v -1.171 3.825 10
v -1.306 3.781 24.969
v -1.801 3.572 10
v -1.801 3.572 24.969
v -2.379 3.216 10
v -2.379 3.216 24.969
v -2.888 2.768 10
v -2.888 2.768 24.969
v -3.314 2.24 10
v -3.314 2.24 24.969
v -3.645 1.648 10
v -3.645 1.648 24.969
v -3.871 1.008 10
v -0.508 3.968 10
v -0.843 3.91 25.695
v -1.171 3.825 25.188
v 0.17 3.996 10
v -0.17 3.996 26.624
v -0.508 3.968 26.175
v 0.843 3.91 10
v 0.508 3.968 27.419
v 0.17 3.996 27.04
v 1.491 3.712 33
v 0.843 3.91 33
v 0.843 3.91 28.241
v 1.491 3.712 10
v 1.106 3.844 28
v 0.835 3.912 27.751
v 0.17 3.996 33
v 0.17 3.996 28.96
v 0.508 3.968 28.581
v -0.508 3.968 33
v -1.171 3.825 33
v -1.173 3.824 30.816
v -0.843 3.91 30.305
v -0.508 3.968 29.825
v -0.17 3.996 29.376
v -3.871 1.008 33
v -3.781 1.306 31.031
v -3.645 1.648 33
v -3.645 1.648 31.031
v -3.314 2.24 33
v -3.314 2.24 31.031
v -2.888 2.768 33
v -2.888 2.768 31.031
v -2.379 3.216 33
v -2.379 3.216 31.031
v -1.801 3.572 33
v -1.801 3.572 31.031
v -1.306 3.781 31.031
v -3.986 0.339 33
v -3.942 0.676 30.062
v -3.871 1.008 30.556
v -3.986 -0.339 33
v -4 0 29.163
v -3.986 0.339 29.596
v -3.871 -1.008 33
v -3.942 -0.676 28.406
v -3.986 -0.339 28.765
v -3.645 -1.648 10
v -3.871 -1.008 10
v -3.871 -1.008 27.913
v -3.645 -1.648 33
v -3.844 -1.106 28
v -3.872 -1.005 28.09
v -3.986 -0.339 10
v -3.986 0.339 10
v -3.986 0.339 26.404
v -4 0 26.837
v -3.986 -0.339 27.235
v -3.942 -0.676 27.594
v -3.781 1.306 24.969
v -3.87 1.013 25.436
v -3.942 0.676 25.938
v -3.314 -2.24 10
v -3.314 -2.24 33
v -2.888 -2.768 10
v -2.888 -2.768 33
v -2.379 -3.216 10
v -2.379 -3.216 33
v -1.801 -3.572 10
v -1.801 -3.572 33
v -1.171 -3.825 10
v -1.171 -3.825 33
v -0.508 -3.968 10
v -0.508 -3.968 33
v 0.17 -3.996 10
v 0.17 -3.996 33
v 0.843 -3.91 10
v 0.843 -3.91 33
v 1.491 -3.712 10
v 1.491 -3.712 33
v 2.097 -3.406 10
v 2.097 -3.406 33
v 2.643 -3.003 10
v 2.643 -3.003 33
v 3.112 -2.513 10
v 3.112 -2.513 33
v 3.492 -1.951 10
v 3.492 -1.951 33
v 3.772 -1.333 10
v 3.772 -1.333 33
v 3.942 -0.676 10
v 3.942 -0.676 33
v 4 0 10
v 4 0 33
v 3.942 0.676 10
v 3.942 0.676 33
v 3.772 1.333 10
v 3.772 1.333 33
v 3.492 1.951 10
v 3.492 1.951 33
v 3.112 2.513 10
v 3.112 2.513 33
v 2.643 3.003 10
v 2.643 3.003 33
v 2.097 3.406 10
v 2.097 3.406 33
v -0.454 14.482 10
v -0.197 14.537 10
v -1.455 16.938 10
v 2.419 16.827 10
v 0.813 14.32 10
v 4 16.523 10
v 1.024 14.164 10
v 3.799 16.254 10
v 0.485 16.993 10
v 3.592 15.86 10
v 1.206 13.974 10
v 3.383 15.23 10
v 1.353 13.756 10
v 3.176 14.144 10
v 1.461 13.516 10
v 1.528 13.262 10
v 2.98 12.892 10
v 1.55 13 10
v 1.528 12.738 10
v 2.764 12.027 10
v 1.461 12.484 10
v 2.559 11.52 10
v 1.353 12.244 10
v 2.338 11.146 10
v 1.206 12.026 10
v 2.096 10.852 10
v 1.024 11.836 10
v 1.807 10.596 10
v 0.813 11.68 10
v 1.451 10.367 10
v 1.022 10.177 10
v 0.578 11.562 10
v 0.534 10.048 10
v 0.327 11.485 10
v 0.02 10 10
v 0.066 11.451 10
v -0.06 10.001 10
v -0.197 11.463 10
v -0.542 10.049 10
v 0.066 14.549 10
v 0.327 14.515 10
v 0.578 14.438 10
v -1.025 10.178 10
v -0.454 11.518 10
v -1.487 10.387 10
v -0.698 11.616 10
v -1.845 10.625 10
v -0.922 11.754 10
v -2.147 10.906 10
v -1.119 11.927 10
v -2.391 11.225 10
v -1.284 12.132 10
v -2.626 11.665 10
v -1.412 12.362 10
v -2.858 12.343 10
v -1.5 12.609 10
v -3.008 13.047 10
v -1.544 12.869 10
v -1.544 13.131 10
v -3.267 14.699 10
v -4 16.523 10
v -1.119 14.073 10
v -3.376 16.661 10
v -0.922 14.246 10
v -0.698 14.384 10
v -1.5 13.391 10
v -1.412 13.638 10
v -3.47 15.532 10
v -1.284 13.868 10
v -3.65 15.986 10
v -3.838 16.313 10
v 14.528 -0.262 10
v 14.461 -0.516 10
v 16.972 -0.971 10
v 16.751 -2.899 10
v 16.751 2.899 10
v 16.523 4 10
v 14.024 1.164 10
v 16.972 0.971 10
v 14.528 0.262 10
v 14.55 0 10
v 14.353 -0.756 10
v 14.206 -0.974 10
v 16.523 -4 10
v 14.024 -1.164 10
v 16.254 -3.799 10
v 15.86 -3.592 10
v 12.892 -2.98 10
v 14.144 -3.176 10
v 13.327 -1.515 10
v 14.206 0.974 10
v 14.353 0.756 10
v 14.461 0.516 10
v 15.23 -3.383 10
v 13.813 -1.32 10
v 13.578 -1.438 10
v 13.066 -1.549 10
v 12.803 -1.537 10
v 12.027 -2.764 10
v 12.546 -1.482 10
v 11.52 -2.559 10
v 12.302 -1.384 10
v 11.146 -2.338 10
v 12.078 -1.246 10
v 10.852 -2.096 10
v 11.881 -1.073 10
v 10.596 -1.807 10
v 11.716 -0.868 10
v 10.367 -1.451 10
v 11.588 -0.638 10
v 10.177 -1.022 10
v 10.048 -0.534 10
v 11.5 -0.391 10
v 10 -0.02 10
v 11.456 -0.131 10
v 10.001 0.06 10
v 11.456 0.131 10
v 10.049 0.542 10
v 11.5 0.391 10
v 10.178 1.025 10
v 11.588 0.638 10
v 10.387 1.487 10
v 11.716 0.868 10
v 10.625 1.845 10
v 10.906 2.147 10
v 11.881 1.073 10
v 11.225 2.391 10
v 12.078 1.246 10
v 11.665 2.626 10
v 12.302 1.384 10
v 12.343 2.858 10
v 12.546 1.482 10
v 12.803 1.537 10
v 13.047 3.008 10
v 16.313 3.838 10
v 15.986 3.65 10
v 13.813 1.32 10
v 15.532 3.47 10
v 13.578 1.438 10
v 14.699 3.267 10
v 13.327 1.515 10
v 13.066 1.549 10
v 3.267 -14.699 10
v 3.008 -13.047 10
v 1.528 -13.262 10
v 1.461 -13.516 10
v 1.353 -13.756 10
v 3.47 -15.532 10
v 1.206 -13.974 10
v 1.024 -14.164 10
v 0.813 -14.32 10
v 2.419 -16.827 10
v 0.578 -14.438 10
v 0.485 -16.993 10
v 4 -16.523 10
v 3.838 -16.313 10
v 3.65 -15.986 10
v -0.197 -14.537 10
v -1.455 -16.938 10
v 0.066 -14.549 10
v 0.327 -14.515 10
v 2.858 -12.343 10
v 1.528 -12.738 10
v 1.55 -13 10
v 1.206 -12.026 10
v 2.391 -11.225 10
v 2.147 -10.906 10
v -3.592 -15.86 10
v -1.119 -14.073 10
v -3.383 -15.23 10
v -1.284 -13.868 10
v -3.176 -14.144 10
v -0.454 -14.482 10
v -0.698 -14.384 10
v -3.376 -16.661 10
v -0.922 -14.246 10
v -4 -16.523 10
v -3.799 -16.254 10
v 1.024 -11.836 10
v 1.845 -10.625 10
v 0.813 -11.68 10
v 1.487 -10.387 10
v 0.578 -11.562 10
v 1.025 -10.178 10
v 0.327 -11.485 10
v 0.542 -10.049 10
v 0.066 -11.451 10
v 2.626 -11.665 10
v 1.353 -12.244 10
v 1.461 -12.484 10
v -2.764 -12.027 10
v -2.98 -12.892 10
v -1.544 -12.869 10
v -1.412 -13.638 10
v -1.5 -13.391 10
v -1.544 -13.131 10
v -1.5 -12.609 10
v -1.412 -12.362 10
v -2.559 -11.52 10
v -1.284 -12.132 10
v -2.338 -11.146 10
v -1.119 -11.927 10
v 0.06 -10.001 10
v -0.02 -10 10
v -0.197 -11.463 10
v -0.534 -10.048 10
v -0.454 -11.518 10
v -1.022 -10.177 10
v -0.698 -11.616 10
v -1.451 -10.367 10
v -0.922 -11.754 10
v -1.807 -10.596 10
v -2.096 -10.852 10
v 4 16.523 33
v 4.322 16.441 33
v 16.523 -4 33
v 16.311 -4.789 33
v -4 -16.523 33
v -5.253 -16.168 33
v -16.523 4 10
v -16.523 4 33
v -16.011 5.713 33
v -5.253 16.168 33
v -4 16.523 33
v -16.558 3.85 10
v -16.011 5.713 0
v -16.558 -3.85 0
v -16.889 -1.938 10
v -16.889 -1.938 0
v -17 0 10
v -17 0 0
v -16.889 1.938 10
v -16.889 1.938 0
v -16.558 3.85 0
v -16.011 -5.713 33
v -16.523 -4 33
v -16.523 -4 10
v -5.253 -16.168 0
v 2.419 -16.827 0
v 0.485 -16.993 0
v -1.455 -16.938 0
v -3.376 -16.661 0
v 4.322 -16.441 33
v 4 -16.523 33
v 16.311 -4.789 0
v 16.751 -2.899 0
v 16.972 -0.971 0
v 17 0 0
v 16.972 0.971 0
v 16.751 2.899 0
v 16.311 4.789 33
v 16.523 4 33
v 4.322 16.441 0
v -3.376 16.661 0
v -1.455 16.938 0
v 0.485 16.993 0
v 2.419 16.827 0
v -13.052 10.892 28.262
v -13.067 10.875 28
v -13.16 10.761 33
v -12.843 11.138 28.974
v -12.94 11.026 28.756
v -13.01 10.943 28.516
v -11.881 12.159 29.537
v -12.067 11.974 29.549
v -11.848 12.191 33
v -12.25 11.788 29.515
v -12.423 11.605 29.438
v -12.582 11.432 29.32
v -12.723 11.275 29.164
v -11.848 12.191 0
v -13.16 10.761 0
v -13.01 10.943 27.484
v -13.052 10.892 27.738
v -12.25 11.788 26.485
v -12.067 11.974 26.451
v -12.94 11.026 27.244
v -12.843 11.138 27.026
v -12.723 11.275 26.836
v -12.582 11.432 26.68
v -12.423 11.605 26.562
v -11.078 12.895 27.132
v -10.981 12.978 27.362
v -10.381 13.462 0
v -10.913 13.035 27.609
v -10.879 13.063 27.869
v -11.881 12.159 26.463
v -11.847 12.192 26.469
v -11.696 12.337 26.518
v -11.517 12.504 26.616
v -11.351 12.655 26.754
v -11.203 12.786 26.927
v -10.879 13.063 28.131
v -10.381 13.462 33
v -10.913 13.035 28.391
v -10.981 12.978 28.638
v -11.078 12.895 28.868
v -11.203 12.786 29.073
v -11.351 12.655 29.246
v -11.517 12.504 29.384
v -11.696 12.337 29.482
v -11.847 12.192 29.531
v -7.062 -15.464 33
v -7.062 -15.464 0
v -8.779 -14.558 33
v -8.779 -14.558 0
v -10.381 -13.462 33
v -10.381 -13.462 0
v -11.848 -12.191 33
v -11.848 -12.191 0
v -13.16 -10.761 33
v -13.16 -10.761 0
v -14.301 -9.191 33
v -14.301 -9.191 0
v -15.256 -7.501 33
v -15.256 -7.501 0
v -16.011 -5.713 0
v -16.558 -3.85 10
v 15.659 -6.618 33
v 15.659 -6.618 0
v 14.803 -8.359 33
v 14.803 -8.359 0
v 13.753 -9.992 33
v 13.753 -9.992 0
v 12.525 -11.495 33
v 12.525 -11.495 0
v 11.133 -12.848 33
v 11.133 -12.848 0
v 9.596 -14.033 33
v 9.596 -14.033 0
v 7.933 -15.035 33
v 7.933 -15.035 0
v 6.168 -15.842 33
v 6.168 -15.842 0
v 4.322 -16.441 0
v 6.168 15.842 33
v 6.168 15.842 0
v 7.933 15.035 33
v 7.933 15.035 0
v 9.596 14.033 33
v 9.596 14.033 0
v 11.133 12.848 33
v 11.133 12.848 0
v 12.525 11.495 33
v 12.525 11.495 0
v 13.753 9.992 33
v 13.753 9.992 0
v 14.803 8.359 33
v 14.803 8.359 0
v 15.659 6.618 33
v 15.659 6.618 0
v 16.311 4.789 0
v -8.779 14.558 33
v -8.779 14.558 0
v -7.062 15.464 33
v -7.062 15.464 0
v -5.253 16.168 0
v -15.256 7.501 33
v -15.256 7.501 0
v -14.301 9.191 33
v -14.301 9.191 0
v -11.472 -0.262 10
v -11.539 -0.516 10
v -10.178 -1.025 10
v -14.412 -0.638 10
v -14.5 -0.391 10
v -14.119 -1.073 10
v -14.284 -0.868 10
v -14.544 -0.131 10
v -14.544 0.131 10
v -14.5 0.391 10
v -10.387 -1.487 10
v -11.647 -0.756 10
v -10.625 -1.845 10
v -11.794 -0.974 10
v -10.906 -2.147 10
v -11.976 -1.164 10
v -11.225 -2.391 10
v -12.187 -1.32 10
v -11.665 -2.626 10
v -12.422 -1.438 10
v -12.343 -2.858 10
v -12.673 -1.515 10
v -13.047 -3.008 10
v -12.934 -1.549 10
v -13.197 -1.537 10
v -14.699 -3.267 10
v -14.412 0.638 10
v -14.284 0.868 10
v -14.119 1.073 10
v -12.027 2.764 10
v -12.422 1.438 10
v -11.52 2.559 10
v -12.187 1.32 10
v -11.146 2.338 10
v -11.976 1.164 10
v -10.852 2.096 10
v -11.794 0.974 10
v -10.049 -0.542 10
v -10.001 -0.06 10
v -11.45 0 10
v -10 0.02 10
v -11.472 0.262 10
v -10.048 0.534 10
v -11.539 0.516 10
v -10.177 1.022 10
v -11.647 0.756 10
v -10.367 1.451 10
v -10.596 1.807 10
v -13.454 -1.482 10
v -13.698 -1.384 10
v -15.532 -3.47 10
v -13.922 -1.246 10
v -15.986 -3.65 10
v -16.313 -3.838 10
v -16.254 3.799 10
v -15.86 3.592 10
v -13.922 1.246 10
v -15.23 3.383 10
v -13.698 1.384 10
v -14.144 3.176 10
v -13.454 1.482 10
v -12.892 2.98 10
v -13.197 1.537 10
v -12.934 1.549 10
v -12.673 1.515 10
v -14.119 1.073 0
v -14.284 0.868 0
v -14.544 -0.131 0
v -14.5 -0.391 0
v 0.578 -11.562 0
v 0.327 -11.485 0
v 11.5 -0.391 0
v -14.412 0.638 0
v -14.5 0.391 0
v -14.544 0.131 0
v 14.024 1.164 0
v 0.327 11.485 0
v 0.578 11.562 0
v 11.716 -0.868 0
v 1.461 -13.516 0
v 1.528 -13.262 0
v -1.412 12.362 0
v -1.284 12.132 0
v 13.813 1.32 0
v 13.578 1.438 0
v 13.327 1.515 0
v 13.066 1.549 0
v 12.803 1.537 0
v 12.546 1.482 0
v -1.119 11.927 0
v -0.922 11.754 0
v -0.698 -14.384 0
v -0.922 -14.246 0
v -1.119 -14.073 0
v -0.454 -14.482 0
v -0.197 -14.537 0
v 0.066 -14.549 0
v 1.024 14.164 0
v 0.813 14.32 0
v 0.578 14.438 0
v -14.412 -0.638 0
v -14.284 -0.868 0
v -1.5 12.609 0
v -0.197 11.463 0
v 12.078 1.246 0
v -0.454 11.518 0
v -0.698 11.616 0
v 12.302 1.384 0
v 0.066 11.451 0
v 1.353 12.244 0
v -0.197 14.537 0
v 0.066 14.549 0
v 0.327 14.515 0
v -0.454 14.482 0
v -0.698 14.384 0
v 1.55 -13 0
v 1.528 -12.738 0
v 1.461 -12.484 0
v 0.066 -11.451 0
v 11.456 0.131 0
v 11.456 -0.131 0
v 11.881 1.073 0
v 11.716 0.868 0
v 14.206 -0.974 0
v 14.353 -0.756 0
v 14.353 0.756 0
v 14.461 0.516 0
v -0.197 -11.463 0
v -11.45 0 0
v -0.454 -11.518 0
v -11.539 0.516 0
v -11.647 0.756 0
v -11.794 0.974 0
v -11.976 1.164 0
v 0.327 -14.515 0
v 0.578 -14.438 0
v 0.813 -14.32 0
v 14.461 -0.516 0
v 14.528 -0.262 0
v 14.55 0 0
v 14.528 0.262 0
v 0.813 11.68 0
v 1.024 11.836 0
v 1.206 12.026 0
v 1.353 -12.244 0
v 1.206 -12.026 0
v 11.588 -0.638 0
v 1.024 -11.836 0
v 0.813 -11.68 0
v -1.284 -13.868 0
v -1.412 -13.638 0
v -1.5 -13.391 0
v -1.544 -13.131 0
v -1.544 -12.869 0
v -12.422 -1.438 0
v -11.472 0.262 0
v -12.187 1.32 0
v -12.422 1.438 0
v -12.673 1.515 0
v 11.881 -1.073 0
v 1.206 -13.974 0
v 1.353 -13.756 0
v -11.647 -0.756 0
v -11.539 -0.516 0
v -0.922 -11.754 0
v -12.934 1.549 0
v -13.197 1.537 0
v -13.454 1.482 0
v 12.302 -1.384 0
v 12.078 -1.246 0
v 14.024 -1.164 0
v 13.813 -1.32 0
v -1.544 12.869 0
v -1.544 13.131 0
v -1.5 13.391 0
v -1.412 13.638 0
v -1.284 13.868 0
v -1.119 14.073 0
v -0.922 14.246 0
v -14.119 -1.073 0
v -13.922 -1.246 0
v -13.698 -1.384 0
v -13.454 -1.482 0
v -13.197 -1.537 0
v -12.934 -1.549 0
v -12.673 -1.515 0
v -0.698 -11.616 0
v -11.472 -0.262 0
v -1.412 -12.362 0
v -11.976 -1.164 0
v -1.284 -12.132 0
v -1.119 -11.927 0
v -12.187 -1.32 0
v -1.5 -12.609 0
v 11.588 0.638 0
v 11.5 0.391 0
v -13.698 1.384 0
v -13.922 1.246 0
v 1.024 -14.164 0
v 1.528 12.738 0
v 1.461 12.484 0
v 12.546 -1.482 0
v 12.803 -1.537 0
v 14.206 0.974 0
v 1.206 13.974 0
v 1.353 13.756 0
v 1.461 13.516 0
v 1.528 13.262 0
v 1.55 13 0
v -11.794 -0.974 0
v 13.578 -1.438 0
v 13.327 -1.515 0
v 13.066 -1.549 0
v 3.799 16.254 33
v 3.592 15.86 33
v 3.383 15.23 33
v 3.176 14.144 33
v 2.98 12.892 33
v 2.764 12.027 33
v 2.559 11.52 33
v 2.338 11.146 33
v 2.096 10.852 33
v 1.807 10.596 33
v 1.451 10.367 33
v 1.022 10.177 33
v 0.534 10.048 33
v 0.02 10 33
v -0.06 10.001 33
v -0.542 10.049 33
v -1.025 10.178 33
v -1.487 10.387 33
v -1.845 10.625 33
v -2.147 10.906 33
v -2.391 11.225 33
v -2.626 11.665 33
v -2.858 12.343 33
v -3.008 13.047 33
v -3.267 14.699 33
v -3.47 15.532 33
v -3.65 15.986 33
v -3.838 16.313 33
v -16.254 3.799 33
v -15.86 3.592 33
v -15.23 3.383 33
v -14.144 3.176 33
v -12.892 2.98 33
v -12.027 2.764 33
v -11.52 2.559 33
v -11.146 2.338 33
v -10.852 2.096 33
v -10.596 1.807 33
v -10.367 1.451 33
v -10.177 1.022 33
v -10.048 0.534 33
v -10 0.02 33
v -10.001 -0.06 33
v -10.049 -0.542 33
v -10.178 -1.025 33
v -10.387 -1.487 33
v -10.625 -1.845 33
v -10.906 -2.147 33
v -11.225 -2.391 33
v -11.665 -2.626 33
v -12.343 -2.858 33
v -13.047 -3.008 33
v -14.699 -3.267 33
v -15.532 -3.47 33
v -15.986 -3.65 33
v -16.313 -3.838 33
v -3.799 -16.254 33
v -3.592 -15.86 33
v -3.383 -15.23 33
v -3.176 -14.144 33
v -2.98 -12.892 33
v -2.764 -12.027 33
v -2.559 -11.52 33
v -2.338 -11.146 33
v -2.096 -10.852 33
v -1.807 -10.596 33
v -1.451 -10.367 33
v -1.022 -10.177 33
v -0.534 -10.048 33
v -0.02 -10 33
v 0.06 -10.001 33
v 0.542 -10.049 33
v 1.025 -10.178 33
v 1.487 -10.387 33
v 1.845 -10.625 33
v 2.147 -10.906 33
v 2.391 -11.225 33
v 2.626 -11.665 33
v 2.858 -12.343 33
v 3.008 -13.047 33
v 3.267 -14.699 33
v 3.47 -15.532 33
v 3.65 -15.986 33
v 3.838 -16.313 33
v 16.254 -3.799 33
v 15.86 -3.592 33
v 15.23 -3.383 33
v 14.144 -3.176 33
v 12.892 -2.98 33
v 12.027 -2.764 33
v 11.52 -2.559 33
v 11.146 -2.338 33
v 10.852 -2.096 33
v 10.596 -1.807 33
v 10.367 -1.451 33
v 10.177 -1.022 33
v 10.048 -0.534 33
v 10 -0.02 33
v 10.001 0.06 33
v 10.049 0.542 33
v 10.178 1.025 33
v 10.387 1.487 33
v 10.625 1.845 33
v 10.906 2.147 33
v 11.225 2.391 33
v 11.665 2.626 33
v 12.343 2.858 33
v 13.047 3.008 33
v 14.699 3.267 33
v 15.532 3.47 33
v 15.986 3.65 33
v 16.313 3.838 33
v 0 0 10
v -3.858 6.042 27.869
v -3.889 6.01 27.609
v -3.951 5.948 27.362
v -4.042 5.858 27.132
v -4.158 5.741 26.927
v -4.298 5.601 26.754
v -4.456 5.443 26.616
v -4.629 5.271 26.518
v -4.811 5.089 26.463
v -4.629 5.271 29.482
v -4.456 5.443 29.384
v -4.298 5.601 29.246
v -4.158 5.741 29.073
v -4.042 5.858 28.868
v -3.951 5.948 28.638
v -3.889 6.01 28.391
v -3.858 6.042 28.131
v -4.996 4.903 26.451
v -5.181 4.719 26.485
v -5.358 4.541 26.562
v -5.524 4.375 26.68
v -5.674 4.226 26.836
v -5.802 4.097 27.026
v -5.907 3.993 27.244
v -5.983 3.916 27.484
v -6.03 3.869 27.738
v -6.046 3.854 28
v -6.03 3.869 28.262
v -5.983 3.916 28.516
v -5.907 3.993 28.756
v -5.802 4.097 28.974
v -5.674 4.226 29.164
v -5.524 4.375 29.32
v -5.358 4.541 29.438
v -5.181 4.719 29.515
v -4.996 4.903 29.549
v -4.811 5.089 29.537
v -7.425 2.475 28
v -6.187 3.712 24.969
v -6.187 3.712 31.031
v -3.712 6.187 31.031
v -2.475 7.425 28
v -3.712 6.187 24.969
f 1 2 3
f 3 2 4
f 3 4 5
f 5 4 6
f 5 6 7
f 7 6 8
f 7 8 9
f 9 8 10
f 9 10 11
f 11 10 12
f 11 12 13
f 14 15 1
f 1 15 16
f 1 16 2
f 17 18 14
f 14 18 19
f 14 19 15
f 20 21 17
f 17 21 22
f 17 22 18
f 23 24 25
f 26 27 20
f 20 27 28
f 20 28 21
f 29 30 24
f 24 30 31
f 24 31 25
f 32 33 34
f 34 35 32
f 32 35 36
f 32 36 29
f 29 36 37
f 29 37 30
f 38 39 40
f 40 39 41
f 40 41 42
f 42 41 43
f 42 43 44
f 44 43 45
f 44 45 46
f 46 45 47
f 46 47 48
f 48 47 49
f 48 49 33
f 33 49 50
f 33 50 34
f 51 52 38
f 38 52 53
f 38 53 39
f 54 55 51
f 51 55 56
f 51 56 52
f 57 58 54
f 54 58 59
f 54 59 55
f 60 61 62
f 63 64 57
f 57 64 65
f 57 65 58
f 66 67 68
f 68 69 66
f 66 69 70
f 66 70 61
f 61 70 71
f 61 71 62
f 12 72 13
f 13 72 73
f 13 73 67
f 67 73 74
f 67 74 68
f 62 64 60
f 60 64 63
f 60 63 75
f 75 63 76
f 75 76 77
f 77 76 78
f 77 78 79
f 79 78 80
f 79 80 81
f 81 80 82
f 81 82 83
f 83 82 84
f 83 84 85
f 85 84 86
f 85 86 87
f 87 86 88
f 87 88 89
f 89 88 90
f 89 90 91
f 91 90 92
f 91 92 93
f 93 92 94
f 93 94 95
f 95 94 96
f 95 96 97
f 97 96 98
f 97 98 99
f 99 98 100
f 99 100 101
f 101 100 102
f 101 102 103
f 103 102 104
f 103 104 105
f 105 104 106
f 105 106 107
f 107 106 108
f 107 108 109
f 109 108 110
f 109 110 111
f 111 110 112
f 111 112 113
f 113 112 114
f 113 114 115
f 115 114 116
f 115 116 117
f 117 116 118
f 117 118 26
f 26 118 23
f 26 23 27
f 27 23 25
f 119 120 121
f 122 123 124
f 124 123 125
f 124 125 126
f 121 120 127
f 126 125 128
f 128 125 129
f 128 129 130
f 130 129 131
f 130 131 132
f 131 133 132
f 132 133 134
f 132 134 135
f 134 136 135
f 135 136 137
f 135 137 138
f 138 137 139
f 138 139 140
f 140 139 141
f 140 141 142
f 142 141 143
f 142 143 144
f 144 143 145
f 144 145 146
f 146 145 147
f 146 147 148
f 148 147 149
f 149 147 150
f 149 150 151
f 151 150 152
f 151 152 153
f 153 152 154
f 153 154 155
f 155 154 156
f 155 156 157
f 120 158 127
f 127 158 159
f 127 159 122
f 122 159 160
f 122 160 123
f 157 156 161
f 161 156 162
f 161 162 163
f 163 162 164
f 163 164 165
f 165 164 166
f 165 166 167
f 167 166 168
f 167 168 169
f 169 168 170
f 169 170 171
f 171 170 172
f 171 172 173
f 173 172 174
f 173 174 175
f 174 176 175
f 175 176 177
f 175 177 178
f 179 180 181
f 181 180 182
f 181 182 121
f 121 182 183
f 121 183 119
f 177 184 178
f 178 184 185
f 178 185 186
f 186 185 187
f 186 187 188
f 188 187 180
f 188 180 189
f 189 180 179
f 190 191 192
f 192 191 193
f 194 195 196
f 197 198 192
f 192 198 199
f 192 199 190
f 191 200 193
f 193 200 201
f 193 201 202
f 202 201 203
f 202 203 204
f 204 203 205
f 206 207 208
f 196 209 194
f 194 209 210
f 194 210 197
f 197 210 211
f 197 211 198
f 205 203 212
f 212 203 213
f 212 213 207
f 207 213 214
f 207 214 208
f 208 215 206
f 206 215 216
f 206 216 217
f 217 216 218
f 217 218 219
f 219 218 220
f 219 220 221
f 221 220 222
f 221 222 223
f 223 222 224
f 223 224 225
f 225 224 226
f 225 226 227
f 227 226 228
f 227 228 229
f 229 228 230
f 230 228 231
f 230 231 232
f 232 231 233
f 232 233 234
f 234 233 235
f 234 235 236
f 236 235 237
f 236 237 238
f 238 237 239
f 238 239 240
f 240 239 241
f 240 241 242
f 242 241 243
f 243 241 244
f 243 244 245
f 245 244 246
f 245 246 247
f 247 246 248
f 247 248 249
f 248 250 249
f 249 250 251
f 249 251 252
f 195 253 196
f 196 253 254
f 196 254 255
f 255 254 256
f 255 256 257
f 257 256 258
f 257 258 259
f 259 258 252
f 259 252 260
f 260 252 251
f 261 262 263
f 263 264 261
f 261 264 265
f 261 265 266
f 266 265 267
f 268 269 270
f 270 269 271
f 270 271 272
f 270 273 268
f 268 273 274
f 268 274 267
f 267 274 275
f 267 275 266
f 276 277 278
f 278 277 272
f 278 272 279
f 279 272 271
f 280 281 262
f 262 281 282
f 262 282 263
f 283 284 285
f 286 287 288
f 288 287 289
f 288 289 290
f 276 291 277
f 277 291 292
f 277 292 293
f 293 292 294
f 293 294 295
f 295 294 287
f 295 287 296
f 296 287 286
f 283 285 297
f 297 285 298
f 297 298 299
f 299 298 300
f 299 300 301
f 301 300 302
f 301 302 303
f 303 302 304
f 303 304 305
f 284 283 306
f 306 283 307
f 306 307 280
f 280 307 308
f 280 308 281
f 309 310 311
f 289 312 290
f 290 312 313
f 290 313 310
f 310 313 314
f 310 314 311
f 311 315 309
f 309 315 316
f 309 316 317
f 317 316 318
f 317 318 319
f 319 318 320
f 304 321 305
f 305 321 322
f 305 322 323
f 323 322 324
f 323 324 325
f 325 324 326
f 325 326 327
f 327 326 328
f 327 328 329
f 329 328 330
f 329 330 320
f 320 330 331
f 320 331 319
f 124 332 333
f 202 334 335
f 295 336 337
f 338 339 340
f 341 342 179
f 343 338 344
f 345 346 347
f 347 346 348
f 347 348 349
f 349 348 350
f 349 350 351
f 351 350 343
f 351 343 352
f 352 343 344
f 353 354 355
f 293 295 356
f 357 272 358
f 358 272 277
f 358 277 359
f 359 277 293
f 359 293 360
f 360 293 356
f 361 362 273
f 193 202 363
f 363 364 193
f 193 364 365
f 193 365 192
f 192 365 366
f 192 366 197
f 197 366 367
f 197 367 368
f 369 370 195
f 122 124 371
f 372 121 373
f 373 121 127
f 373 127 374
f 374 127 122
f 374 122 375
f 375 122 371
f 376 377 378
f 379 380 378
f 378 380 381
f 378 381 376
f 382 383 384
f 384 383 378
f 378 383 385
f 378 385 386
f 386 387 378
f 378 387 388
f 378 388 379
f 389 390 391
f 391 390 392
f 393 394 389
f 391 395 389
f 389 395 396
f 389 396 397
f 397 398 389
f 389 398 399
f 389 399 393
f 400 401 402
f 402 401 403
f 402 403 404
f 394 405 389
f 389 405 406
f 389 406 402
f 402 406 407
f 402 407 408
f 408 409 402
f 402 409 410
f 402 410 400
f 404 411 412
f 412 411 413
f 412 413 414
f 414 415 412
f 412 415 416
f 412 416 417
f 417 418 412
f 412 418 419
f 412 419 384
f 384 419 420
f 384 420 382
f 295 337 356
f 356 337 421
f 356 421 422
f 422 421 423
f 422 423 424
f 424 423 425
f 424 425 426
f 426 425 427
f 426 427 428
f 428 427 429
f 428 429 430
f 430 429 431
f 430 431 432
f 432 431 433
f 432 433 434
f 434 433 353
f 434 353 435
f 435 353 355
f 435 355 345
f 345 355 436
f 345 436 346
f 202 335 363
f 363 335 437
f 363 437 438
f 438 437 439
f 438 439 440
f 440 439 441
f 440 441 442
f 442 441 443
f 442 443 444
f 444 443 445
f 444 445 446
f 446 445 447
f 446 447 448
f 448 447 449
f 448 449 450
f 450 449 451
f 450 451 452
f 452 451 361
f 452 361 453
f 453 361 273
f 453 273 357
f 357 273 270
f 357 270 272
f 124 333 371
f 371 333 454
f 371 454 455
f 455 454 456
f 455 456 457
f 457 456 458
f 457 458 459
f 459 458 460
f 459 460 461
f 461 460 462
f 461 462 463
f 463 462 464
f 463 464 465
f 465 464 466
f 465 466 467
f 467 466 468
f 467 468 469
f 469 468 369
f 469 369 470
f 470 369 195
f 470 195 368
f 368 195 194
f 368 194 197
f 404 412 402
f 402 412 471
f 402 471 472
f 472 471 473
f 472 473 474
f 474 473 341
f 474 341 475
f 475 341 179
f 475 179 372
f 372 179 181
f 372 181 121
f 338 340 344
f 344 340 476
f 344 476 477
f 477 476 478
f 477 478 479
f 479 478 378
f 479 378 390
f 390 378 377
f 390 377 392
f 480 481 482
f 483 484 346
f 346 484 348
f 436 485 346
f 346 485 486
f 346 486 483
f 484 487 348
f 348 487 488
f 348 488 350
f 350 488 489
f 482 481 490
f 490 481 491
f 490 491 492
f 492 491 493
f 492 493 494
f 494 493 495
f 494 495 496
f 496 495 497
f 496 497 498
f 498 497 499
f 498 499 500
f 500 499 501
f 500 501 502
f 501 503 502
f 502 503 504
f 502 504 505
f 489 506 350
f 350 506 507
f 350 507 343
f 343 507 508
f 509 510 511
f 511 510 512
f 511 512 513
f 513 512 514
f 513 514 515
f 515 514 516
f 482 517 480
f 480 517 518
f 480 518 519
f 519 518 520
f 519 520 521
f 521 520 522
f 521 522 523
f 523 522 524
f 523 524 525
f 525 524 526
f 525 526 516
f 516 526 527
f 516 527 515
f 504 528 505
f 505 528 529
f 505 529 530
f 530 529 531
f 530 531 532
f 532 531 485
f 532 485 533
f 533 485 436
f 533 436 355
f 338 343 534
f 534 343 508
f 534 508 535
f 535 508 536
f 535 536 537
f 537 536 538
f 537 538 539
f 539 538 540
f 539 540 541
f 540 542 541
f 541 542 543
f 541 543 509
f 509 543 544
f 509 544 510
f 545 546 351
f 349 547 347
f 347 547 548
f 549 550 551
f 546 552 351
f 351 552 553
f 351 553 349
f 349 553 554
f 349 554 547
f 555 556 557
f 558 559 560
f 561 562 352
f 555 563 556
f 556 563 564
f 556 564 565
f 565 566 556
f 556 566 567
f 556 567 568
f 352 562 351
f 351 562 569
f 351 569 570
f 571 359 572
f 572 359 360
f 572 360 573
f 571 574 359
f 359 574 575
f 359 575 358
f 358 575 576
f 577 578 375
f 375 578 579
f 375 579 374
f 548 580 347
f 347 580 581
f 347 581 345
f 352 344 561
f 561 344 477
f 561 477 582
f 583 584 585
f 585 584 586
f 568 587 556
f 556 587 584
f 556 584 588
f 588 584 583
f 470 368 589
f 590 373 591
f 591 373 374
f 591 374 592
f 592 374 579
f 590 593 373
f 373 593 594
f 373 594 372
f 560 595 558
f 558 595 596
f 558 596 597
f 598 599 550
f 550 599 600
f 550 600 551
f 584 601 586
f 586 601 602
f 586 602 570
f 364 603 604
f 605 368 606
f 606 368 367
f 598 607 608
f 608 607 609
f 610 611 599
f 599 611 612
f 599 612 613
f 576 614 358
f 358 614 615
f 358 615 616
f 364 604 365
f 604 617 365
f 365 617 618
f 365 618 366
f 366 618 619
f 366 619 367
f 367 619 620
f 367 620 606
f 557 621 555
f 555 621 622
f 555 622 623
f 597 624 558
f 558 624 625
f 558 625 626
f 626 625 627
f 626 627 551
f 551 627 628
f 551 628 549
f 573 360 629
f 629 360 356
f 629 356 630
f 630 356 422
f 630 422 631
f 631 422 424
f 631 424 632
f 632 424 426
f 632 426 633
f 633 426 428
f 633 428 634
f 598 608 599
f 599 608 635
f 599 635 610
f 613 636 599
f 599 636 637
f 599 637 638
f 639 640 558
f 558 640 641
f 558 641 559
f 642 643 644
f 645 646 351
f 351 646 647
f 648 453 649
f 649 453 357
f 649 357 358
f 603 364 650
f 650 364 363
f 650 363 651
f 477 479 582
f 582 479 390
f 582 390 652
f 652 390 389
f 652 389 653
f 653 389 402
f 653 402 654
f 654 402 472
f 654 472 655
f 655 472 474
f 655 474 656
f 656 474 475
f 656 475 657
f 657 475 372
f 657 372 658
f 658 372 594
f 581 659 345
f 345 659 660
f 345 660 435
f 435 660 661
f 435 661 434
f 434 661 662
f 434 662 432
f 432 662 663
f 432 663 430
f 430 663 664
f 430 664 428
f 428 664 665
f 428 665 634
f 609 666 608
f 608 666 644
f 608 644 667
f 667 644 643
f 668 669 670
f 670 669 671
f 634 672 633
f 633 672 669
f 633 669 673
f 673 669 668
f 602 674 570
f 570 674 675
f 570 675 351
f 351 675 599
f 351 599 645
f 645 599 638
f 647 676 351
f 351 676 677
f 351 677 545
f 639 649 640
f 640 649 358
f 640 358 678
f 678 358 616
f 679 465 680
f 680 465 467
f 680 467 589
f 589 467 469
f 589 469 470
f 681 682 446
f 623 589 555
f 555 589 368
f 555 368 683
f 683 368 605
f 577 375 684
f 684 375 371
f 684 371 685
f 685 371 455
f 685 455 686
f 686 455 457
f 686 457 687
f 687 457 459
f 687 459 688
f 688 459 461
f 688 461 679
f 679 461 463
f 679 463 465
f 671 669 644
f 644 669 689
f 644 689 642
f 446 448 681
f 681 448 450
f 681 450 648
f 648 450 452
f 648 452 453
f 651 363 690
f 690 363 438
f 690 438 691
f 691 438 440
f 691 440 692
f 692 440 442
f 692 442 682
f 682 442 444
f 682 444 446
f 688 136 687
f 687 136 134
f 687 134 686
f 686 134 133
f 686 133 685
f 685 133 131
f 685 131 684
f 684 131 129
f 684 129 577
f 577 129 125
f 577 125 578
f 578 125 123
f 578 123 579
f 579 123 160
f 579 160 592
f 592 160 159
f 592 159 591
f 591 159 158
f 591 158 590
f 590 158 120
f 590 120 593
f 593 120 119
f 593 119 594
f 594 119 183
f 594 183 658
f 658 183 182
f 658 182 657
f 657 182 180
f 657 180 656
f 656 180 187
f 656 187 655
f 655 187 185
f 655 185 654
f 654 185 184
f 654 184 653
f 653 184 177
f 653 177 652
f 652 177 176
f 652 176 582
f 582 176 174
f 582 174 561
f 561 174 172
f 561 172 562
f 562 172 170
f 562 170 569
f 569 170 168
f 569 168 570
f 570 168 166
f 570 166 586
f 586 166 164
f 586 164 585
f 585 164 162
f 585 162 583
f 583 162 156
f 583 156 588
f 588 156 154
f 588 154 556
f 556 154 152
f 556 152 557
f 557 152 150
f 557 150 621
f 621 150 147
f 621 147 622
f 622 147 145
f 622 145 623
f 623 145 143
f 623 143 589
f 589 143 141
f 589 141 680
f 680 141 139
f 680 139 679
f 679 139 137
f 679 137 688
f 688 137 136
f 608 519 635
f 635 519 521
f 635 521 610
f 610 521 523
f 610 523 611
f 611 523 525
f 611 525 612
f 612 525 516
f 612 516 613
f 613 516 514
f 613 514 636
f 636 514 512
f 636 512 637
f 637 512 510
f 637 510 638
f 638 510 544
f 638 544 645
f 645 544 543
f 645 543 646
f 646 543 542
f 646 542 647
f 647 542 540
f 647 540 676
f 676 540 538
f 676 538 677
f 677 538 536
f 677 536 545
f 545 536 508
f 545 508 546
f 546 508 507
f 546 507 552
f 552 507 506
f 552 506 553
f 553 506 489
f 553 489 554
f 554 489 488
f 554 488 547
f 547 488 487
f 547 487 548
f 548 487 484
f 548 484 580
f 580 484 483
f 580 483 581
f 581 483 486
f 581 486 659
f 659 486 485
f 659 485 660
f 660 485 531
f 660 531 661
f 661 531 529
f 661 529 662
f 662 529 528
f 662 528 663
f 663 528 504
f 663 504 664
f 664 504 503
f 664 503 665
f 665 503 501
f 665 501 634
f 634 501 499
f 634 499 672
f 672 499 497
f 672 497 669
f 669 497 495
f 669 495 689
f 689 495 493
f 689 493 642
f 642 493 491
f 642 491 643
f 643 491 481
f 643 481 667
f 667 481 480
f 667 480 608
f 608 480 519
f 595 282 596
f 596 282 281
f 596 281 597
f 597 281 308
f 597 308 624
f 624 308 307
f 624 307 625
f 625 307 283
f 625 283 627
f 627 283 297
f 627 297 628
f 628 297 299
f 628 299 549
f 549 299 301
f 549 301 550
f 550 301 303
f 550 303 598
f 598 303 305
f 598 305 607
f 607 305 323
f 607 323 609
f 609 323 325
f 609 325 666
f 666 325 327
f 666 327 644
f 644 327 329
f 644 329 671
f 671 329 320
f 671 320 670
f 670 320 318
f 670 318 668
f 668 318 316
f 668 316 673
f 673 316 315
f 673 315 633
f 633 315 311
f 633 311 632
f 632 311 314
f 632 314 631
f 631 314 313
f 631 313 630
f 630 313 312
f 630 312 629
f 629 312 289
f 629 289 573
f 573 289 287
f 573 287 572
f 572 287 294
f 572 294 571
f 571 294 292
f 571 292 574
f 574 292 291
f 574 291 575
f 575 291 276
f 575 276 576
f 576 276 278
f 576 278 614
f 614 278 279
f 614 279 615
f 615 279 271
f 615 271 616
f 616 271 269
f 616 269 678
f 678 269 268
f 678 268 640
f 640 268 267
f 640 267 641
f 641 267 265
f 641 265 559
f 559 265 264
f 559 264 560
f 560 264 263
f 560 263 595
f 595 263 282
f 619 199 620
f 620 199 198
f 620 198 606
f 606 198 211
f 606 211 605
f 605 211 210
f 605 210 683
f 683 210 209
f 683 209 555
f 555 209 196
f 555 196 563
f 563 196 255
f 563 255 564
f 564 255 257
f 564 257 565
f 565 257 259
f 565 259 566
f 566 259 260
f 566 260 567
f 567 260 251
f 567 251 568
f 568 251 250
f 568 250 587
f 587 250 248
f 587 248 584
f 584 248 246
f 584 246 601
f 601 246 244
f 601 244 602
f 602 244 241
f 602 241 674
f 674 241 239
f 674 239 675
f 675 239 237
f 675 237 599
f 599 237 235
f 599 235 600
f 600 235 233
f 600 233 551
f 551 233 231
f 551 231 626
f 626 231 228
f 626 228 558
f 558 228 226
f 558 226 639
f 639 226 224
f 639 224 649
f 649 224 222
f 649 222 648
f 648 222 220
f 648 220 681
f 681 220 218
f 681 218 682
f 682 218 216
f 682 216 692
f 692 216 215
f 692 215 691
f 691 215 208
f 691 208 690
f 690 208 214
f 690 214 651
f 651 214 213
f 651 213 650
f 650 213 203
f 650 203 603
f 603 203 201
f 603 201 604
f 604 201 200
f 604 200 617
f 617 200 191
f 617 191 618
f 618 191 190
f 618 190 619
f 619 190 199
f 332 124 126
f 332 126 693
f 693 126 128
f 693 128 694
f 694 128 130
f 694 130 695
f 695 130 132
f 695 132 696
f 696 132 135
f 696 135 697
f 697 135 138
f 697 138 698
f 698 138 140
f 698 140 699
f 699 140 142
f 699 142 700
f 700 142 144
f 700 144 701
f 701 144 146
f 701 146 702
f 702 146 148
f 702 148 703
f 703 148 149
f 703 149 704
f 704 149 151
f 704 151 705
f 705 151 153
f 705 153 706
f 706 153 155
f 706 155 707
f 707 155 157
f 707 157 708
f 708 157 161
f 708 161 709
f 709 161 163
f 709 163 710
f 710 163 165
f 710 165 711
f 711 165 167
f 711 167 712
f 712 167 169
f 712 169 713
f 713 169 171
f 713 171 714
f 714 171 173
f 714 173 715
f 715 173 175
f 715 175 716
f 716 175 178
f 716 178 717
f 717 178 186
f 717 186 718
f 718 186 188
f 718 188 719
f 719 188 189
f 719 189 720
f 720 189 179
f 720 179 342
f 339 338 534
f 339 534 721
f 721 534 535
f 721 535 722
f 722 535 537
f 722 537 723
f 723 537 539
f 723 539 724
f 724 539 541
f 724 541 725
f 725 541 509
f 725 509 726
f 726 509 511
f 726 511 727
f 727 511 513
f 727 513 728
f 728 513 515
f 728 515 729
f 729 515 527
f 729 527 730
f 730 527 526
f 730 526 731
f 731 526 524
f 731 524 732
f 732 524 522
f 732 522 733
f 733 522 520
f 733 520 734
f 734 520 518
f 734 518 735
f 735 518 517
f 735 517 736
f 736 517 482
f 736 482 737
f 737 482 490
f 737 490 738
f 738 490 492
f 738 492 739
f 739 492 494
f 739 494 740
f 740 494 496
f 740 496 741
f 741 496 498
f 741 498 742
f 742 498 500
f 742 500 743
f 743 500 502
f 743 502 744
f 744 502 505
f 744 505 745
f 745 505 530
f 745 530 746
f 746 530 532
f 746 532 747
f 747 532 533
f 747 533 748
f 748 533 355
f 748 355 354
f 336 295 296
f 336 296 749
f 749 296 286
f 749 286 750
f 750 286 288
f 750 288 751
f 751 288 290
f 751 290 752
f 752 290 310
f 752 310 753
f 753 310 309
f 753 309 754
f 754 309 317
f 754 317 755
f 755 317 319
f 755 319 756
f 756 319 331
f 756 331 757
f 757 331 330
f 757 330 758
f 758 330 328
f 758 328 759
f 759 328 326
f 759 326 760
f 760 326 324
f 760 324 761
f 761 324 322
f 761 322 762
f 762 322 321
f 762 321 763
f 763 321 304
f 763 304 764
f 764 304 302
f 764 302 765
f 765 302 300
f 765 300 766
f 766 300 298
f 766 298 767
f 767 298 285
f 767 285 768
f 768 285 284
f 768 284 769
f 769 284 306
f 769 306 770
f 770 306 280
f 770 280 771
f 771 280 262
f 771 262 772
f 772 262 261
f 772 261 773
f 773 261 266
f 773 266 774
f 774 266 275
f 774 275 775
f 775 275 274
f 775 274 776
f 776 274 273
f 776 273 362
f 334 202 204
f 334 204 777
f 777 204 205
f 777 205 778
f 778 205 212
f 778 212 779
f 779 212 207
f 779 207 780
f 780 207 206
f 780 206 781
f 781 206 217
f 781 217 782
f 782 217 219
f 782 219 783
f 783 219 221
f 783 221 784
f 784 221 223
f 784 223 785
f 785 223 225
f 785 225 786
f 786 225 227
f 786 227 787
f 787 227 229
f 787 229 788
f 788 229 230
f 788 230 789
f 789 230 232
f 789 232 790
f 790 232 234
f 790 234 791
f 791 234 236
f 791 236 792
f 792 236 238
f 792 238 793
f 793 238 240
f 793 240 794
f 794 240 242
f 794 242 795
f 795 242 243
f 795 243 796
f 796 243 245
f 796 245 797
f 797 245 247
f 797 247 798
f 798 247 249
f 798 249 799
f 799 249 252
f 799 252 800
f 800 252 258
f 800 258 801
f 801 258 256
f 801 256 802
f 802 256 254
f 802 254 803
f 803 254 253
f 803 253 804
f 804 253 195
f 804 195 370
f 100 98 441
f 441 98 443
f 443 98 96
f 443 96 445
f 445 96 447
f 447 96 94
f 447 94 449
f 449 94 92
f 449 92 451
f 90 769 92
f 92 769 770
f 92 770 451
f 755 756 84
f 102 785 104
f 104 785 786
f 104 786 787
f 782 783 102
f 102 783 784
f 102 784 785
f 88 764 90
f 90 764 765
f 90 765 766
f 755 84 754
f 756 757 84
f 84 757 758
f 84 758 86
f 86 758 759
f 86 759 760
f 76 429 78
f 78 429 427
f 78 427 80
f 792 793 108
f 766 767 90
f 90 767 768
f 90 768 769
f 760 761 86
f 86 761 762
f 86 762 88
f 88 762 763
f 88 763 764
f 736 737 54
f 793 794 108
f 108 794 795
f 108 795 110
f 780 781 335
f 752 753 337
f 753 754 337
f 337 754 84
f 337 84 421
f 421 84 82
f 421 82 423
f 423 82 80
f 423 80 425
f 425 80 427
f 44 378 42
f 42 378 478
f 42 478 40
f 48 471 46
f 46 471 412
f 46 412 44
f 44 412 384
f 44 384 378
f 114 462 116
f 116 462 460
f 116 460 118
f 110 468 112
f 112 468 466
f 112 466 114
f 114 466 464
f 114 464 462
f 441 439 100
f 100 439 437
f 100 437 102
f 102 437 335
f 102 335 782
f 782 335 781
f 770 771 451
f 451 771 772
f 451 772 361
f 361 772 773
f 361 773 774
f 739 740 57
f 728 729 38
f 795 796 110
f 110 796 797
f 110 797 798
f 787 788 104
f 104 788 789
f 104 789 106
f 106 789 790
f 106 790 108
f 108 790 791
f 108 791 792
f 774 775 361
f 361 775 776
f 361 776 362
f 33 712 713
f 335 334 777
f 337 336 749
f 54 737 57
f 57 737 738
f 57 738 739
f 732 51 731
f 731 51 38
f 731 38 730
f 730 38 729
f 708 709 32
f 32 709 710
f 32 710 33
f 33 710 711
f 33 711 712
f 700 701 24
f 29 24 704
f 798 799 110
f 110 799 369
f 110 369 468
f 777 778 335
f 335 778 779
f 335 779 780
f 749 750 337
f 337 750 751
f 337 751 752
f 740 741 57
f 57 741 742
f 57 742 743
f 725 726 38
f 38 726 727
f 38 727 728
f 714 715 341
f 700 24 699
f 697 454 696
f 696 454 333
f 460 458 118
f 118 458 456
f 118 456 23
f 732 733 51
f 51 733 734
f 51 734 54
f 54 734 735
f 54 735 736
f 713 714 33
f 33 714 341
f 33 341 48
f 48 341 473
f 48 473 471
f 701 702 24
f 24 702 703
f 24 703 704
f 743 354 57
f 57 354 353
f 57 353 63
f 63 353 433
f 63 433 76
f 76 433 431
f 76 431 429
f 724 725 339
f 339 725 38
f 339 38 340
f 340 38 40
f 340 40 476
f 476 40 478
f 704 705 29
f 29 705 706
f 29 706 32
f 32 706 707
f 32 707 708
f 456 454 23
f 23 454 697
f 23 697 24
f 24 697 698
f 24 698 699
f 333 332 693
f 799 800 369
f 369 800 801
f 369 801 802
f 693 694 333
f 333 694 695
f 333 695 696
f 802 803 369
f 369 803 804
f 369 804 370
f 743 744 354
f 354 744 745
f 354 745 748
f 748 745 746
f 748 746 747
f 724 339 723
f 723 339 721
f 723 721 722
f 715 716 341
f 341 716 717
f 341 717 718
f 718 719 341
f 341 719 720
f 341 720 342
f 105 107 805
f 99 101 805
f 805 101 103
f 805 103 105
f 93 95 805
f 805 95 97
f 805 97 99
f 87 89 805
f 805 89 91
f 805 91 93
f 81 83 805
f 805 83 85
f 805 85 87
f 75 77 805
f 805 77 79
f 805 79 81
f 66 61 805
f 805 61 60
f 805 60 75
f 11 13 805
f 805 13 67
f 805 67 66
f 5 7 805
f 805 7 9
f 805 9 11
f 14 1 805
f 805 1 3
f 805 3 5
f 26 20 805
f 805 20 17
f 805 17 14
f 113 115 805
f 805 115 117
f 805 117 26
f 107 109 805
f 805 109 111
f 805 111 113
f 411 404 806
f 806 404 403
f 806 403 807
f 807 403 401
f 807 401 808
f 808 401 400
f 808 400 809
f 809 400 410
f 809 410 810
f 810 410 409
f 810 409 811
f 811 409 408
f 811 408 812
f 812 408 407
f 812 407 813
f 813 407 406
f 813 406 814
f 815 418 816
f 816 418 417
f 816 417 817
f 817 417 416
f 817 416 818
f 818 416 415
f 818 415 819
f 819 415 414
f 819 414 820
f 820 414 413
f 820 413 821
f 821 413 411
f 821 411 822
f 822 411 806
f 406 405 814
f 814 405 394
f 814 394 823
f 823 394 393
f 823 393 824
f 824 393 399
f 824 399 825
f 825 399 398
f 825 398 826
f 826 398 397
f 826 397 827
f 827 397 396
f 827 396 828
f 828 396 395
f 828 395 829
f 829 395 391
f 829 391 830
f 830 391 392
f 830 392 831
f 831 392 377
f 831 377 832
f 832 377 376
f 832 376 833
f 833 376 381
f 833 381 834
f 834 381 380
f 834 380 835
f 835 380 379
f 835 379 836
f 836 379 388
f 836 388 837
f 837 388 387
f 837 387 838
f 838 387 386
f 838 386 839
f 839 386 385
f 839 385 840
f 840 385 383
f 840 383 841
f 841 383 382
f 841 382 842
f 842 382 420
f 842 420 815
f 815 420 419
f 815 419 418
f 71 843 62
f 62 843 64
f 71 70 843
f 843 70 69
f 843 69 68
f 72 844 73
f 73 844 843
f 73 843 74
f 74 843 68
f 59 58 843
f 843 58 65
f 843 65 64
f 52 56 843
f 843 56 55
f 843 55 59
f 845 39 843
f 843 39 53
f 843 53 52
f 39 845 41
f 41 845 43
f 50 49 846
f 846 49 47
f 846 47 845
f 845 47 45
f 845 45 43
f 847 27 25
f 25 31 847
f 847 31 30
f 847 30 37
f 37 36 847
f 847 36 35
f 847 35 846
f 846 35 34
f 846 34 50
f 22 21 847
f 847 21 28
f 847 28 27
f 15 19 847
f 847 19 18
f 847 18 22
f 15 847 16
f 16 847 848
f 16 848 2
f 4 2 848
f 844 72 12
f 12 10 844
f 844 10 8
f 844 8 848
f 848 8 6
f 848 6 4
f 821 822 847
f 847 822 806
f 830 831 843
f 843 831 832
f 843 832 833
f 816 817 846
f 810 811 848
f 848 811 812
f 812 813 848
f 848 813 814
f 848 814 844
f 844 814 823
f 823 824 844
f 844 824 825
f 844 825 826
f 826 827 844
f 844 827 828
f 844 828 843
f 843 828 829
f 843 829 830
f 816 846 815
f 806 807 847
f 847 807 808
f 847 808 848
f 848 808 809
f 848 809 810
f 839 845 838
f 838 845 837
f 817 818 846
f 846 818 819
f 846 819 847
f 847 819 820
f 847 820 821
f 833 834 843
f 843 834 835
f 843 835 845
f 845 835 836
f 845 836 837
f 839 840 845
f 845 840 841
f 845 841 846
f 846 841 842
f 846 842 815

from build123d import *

# Parameters (mm, degrees)
SKETCH1_R           = 17
BOSS_EXTRUDE1_DEPTH = 10
SKETCH2_R           = 1.55
CUT_EXTRUDE1_DEPTH  = 27.038433133
BOSS_EXTRUDE3_DEPTH = 23
SKETCH4_R           = 4
CUT_EXTRUDE2_DEPTH  = 23
SKETCH7_R           = 1.55
CUT_EXTRUDE3_DEPTH  = 15
CUT_EXTRUDE6_DEPTH  = 7


with BuildPart() as part:
    # Sketch1 → Boss-Extrude1 (new body)
    with BuildSketch(Plane.XY):
        Circle(SKETCH1_R)
    extrude(amount=BOSS_EXTRUDE1_DEPTH)

    # Sketch2 → Cut-Extrude1 (cut, through all)
    with BuildSketch(Plane.XY.offset(10)):
        with Locations((13, 0)):
            Circle(SKETCH2_R)
        with Locations((0, -13)):
            Circle(SKETCH2_R)
        with Locations((-13, 0)):
            Circle(SKETCH2_R)
        with Locations((0, 13)):
            Circle(SKETCH2_R)
    extrude(amount=-CUT_EXTRUDE1_DEPTH, mode=Mode.SUBTRACT)

    # Sketch3 → Boss-Extrude3 (add)
    with BuildSketch(Plane.XY.offset(10)):
        with BuildLine():
            ThreePointArc((16.522711642, 4), (12.02081528, 12.02081528), (4, 16.522711642))
            add(Edge.make_bspline(
                [(4, 16.522711642), (2.816233041, 15.179097537), (3.696027617, 11.190043266), (0, 9.66895733), (-3.696027617, 11.190043266), (-2.816233041, 15.179097537), (-4, 16.522711642)],
                knots=[0, 0, 0, 0, 0.360911498, 0.5, 0.639088502, 1, 1, 1, 1], degree=3))
            ThreePointArc((-4, 16.522711642), (-12.02081528, 12.02081528), (-16.522711642, 4))
            add(Edge.make_bspline(
                [(-16.522711642, 4), (-15.179097537, 2.816233041), (-11.190043266, 3.696027617), (-9.66895733, 0), (-11.190043266, -3.696027617), (-15.179097537, -2.816233041), (-16.522711642, -4)],
                knots=[0, 0, 0, 0, 0.360911498, 0.5, 0.639088502, 1, 1, 1, 1], degree=3))
            ThreePointArc((-16.522711642, -4), (-12.02081528, -12.02081528), (-4, -16.522711642))
            add(Edge.make_bspline(
                [(-4, -16.522711642), (-2.816233041, -15.179097537), (-3.696027617, -11.190043266), (0, -9.66895733), (3.696027617, -11.190043266), (2.816233041, -15.179097537), (4, -16.522711642)],
                knots=[0, 0, 0, 0, 0.360911498, 0.5, 0.639088502, 1, 1, 1, 1], degree=3))
            ThreePointArc((4, -16.522711642), (12.02081528, -12.02081528), (16.522711642, -4))
            add(Edge.make_bspline(
                [(16.522711642, -4), (15.179097537, -2.816233041), (11.190043266, -3.696027617), (9.66895733, 0), (11.190043266, 3.696027617), (15.179097537, 2.816233041), (16.522711642, 4)],
                knots=[0, 0, 0, 0, 0.360911498, 0.5, 0.639088502, 1, 1, 1, 1], degree=3))
        make_face()
    extrude(amount=BOSS_EXTRUDE3_DEPTH)

    # Sketch4 → Cut-Extrude2 (cut)
    with BuildSketch(Plane.XY.offset(33)):
        Circle(SKETCH4_R)
    extrude(amount=-CUT_EXTRUDE2_DEPTH, mode=Mode.SUBTRACT)

    # Sketch7 → Cut-Extrude3 (cut)
    with BuildSketch(Plane(origin=(-12.02081528, 12.02081528, 0), x_dir=(0, 0, -1), z_dir=(-0.7071067811865464, 0.7071067811865488, 0))):
        with Locations(Location((-28, 0, 0), (0, 0, 90))):
            Circle(SKETCH7_R)
    extrude(amount=-CUT_EXTRUDE3_DEPTH, mode=Mode.SUBTRACT)

    # Sketch11 → Cut-Extrude6 (cut)
    with BuildSketch(Plane(origin=(0, 0, 0), x_dir=(0, 0, -1), z_dir=(-0.7071067811865464, 0.7071067811865488, 0))):
        Polygon((-28, 3.5), (-31.031088913, 1.75), (-31.031088913, -1.75), (-28, -3.5), (-24.968911087, -1.75), (-24.968911087, 1.75), align=None)
    extrude(amount=CUT_EXTRUDE6_DEPTH, mode=Mode.SUBTRACT)


solid = part.part
